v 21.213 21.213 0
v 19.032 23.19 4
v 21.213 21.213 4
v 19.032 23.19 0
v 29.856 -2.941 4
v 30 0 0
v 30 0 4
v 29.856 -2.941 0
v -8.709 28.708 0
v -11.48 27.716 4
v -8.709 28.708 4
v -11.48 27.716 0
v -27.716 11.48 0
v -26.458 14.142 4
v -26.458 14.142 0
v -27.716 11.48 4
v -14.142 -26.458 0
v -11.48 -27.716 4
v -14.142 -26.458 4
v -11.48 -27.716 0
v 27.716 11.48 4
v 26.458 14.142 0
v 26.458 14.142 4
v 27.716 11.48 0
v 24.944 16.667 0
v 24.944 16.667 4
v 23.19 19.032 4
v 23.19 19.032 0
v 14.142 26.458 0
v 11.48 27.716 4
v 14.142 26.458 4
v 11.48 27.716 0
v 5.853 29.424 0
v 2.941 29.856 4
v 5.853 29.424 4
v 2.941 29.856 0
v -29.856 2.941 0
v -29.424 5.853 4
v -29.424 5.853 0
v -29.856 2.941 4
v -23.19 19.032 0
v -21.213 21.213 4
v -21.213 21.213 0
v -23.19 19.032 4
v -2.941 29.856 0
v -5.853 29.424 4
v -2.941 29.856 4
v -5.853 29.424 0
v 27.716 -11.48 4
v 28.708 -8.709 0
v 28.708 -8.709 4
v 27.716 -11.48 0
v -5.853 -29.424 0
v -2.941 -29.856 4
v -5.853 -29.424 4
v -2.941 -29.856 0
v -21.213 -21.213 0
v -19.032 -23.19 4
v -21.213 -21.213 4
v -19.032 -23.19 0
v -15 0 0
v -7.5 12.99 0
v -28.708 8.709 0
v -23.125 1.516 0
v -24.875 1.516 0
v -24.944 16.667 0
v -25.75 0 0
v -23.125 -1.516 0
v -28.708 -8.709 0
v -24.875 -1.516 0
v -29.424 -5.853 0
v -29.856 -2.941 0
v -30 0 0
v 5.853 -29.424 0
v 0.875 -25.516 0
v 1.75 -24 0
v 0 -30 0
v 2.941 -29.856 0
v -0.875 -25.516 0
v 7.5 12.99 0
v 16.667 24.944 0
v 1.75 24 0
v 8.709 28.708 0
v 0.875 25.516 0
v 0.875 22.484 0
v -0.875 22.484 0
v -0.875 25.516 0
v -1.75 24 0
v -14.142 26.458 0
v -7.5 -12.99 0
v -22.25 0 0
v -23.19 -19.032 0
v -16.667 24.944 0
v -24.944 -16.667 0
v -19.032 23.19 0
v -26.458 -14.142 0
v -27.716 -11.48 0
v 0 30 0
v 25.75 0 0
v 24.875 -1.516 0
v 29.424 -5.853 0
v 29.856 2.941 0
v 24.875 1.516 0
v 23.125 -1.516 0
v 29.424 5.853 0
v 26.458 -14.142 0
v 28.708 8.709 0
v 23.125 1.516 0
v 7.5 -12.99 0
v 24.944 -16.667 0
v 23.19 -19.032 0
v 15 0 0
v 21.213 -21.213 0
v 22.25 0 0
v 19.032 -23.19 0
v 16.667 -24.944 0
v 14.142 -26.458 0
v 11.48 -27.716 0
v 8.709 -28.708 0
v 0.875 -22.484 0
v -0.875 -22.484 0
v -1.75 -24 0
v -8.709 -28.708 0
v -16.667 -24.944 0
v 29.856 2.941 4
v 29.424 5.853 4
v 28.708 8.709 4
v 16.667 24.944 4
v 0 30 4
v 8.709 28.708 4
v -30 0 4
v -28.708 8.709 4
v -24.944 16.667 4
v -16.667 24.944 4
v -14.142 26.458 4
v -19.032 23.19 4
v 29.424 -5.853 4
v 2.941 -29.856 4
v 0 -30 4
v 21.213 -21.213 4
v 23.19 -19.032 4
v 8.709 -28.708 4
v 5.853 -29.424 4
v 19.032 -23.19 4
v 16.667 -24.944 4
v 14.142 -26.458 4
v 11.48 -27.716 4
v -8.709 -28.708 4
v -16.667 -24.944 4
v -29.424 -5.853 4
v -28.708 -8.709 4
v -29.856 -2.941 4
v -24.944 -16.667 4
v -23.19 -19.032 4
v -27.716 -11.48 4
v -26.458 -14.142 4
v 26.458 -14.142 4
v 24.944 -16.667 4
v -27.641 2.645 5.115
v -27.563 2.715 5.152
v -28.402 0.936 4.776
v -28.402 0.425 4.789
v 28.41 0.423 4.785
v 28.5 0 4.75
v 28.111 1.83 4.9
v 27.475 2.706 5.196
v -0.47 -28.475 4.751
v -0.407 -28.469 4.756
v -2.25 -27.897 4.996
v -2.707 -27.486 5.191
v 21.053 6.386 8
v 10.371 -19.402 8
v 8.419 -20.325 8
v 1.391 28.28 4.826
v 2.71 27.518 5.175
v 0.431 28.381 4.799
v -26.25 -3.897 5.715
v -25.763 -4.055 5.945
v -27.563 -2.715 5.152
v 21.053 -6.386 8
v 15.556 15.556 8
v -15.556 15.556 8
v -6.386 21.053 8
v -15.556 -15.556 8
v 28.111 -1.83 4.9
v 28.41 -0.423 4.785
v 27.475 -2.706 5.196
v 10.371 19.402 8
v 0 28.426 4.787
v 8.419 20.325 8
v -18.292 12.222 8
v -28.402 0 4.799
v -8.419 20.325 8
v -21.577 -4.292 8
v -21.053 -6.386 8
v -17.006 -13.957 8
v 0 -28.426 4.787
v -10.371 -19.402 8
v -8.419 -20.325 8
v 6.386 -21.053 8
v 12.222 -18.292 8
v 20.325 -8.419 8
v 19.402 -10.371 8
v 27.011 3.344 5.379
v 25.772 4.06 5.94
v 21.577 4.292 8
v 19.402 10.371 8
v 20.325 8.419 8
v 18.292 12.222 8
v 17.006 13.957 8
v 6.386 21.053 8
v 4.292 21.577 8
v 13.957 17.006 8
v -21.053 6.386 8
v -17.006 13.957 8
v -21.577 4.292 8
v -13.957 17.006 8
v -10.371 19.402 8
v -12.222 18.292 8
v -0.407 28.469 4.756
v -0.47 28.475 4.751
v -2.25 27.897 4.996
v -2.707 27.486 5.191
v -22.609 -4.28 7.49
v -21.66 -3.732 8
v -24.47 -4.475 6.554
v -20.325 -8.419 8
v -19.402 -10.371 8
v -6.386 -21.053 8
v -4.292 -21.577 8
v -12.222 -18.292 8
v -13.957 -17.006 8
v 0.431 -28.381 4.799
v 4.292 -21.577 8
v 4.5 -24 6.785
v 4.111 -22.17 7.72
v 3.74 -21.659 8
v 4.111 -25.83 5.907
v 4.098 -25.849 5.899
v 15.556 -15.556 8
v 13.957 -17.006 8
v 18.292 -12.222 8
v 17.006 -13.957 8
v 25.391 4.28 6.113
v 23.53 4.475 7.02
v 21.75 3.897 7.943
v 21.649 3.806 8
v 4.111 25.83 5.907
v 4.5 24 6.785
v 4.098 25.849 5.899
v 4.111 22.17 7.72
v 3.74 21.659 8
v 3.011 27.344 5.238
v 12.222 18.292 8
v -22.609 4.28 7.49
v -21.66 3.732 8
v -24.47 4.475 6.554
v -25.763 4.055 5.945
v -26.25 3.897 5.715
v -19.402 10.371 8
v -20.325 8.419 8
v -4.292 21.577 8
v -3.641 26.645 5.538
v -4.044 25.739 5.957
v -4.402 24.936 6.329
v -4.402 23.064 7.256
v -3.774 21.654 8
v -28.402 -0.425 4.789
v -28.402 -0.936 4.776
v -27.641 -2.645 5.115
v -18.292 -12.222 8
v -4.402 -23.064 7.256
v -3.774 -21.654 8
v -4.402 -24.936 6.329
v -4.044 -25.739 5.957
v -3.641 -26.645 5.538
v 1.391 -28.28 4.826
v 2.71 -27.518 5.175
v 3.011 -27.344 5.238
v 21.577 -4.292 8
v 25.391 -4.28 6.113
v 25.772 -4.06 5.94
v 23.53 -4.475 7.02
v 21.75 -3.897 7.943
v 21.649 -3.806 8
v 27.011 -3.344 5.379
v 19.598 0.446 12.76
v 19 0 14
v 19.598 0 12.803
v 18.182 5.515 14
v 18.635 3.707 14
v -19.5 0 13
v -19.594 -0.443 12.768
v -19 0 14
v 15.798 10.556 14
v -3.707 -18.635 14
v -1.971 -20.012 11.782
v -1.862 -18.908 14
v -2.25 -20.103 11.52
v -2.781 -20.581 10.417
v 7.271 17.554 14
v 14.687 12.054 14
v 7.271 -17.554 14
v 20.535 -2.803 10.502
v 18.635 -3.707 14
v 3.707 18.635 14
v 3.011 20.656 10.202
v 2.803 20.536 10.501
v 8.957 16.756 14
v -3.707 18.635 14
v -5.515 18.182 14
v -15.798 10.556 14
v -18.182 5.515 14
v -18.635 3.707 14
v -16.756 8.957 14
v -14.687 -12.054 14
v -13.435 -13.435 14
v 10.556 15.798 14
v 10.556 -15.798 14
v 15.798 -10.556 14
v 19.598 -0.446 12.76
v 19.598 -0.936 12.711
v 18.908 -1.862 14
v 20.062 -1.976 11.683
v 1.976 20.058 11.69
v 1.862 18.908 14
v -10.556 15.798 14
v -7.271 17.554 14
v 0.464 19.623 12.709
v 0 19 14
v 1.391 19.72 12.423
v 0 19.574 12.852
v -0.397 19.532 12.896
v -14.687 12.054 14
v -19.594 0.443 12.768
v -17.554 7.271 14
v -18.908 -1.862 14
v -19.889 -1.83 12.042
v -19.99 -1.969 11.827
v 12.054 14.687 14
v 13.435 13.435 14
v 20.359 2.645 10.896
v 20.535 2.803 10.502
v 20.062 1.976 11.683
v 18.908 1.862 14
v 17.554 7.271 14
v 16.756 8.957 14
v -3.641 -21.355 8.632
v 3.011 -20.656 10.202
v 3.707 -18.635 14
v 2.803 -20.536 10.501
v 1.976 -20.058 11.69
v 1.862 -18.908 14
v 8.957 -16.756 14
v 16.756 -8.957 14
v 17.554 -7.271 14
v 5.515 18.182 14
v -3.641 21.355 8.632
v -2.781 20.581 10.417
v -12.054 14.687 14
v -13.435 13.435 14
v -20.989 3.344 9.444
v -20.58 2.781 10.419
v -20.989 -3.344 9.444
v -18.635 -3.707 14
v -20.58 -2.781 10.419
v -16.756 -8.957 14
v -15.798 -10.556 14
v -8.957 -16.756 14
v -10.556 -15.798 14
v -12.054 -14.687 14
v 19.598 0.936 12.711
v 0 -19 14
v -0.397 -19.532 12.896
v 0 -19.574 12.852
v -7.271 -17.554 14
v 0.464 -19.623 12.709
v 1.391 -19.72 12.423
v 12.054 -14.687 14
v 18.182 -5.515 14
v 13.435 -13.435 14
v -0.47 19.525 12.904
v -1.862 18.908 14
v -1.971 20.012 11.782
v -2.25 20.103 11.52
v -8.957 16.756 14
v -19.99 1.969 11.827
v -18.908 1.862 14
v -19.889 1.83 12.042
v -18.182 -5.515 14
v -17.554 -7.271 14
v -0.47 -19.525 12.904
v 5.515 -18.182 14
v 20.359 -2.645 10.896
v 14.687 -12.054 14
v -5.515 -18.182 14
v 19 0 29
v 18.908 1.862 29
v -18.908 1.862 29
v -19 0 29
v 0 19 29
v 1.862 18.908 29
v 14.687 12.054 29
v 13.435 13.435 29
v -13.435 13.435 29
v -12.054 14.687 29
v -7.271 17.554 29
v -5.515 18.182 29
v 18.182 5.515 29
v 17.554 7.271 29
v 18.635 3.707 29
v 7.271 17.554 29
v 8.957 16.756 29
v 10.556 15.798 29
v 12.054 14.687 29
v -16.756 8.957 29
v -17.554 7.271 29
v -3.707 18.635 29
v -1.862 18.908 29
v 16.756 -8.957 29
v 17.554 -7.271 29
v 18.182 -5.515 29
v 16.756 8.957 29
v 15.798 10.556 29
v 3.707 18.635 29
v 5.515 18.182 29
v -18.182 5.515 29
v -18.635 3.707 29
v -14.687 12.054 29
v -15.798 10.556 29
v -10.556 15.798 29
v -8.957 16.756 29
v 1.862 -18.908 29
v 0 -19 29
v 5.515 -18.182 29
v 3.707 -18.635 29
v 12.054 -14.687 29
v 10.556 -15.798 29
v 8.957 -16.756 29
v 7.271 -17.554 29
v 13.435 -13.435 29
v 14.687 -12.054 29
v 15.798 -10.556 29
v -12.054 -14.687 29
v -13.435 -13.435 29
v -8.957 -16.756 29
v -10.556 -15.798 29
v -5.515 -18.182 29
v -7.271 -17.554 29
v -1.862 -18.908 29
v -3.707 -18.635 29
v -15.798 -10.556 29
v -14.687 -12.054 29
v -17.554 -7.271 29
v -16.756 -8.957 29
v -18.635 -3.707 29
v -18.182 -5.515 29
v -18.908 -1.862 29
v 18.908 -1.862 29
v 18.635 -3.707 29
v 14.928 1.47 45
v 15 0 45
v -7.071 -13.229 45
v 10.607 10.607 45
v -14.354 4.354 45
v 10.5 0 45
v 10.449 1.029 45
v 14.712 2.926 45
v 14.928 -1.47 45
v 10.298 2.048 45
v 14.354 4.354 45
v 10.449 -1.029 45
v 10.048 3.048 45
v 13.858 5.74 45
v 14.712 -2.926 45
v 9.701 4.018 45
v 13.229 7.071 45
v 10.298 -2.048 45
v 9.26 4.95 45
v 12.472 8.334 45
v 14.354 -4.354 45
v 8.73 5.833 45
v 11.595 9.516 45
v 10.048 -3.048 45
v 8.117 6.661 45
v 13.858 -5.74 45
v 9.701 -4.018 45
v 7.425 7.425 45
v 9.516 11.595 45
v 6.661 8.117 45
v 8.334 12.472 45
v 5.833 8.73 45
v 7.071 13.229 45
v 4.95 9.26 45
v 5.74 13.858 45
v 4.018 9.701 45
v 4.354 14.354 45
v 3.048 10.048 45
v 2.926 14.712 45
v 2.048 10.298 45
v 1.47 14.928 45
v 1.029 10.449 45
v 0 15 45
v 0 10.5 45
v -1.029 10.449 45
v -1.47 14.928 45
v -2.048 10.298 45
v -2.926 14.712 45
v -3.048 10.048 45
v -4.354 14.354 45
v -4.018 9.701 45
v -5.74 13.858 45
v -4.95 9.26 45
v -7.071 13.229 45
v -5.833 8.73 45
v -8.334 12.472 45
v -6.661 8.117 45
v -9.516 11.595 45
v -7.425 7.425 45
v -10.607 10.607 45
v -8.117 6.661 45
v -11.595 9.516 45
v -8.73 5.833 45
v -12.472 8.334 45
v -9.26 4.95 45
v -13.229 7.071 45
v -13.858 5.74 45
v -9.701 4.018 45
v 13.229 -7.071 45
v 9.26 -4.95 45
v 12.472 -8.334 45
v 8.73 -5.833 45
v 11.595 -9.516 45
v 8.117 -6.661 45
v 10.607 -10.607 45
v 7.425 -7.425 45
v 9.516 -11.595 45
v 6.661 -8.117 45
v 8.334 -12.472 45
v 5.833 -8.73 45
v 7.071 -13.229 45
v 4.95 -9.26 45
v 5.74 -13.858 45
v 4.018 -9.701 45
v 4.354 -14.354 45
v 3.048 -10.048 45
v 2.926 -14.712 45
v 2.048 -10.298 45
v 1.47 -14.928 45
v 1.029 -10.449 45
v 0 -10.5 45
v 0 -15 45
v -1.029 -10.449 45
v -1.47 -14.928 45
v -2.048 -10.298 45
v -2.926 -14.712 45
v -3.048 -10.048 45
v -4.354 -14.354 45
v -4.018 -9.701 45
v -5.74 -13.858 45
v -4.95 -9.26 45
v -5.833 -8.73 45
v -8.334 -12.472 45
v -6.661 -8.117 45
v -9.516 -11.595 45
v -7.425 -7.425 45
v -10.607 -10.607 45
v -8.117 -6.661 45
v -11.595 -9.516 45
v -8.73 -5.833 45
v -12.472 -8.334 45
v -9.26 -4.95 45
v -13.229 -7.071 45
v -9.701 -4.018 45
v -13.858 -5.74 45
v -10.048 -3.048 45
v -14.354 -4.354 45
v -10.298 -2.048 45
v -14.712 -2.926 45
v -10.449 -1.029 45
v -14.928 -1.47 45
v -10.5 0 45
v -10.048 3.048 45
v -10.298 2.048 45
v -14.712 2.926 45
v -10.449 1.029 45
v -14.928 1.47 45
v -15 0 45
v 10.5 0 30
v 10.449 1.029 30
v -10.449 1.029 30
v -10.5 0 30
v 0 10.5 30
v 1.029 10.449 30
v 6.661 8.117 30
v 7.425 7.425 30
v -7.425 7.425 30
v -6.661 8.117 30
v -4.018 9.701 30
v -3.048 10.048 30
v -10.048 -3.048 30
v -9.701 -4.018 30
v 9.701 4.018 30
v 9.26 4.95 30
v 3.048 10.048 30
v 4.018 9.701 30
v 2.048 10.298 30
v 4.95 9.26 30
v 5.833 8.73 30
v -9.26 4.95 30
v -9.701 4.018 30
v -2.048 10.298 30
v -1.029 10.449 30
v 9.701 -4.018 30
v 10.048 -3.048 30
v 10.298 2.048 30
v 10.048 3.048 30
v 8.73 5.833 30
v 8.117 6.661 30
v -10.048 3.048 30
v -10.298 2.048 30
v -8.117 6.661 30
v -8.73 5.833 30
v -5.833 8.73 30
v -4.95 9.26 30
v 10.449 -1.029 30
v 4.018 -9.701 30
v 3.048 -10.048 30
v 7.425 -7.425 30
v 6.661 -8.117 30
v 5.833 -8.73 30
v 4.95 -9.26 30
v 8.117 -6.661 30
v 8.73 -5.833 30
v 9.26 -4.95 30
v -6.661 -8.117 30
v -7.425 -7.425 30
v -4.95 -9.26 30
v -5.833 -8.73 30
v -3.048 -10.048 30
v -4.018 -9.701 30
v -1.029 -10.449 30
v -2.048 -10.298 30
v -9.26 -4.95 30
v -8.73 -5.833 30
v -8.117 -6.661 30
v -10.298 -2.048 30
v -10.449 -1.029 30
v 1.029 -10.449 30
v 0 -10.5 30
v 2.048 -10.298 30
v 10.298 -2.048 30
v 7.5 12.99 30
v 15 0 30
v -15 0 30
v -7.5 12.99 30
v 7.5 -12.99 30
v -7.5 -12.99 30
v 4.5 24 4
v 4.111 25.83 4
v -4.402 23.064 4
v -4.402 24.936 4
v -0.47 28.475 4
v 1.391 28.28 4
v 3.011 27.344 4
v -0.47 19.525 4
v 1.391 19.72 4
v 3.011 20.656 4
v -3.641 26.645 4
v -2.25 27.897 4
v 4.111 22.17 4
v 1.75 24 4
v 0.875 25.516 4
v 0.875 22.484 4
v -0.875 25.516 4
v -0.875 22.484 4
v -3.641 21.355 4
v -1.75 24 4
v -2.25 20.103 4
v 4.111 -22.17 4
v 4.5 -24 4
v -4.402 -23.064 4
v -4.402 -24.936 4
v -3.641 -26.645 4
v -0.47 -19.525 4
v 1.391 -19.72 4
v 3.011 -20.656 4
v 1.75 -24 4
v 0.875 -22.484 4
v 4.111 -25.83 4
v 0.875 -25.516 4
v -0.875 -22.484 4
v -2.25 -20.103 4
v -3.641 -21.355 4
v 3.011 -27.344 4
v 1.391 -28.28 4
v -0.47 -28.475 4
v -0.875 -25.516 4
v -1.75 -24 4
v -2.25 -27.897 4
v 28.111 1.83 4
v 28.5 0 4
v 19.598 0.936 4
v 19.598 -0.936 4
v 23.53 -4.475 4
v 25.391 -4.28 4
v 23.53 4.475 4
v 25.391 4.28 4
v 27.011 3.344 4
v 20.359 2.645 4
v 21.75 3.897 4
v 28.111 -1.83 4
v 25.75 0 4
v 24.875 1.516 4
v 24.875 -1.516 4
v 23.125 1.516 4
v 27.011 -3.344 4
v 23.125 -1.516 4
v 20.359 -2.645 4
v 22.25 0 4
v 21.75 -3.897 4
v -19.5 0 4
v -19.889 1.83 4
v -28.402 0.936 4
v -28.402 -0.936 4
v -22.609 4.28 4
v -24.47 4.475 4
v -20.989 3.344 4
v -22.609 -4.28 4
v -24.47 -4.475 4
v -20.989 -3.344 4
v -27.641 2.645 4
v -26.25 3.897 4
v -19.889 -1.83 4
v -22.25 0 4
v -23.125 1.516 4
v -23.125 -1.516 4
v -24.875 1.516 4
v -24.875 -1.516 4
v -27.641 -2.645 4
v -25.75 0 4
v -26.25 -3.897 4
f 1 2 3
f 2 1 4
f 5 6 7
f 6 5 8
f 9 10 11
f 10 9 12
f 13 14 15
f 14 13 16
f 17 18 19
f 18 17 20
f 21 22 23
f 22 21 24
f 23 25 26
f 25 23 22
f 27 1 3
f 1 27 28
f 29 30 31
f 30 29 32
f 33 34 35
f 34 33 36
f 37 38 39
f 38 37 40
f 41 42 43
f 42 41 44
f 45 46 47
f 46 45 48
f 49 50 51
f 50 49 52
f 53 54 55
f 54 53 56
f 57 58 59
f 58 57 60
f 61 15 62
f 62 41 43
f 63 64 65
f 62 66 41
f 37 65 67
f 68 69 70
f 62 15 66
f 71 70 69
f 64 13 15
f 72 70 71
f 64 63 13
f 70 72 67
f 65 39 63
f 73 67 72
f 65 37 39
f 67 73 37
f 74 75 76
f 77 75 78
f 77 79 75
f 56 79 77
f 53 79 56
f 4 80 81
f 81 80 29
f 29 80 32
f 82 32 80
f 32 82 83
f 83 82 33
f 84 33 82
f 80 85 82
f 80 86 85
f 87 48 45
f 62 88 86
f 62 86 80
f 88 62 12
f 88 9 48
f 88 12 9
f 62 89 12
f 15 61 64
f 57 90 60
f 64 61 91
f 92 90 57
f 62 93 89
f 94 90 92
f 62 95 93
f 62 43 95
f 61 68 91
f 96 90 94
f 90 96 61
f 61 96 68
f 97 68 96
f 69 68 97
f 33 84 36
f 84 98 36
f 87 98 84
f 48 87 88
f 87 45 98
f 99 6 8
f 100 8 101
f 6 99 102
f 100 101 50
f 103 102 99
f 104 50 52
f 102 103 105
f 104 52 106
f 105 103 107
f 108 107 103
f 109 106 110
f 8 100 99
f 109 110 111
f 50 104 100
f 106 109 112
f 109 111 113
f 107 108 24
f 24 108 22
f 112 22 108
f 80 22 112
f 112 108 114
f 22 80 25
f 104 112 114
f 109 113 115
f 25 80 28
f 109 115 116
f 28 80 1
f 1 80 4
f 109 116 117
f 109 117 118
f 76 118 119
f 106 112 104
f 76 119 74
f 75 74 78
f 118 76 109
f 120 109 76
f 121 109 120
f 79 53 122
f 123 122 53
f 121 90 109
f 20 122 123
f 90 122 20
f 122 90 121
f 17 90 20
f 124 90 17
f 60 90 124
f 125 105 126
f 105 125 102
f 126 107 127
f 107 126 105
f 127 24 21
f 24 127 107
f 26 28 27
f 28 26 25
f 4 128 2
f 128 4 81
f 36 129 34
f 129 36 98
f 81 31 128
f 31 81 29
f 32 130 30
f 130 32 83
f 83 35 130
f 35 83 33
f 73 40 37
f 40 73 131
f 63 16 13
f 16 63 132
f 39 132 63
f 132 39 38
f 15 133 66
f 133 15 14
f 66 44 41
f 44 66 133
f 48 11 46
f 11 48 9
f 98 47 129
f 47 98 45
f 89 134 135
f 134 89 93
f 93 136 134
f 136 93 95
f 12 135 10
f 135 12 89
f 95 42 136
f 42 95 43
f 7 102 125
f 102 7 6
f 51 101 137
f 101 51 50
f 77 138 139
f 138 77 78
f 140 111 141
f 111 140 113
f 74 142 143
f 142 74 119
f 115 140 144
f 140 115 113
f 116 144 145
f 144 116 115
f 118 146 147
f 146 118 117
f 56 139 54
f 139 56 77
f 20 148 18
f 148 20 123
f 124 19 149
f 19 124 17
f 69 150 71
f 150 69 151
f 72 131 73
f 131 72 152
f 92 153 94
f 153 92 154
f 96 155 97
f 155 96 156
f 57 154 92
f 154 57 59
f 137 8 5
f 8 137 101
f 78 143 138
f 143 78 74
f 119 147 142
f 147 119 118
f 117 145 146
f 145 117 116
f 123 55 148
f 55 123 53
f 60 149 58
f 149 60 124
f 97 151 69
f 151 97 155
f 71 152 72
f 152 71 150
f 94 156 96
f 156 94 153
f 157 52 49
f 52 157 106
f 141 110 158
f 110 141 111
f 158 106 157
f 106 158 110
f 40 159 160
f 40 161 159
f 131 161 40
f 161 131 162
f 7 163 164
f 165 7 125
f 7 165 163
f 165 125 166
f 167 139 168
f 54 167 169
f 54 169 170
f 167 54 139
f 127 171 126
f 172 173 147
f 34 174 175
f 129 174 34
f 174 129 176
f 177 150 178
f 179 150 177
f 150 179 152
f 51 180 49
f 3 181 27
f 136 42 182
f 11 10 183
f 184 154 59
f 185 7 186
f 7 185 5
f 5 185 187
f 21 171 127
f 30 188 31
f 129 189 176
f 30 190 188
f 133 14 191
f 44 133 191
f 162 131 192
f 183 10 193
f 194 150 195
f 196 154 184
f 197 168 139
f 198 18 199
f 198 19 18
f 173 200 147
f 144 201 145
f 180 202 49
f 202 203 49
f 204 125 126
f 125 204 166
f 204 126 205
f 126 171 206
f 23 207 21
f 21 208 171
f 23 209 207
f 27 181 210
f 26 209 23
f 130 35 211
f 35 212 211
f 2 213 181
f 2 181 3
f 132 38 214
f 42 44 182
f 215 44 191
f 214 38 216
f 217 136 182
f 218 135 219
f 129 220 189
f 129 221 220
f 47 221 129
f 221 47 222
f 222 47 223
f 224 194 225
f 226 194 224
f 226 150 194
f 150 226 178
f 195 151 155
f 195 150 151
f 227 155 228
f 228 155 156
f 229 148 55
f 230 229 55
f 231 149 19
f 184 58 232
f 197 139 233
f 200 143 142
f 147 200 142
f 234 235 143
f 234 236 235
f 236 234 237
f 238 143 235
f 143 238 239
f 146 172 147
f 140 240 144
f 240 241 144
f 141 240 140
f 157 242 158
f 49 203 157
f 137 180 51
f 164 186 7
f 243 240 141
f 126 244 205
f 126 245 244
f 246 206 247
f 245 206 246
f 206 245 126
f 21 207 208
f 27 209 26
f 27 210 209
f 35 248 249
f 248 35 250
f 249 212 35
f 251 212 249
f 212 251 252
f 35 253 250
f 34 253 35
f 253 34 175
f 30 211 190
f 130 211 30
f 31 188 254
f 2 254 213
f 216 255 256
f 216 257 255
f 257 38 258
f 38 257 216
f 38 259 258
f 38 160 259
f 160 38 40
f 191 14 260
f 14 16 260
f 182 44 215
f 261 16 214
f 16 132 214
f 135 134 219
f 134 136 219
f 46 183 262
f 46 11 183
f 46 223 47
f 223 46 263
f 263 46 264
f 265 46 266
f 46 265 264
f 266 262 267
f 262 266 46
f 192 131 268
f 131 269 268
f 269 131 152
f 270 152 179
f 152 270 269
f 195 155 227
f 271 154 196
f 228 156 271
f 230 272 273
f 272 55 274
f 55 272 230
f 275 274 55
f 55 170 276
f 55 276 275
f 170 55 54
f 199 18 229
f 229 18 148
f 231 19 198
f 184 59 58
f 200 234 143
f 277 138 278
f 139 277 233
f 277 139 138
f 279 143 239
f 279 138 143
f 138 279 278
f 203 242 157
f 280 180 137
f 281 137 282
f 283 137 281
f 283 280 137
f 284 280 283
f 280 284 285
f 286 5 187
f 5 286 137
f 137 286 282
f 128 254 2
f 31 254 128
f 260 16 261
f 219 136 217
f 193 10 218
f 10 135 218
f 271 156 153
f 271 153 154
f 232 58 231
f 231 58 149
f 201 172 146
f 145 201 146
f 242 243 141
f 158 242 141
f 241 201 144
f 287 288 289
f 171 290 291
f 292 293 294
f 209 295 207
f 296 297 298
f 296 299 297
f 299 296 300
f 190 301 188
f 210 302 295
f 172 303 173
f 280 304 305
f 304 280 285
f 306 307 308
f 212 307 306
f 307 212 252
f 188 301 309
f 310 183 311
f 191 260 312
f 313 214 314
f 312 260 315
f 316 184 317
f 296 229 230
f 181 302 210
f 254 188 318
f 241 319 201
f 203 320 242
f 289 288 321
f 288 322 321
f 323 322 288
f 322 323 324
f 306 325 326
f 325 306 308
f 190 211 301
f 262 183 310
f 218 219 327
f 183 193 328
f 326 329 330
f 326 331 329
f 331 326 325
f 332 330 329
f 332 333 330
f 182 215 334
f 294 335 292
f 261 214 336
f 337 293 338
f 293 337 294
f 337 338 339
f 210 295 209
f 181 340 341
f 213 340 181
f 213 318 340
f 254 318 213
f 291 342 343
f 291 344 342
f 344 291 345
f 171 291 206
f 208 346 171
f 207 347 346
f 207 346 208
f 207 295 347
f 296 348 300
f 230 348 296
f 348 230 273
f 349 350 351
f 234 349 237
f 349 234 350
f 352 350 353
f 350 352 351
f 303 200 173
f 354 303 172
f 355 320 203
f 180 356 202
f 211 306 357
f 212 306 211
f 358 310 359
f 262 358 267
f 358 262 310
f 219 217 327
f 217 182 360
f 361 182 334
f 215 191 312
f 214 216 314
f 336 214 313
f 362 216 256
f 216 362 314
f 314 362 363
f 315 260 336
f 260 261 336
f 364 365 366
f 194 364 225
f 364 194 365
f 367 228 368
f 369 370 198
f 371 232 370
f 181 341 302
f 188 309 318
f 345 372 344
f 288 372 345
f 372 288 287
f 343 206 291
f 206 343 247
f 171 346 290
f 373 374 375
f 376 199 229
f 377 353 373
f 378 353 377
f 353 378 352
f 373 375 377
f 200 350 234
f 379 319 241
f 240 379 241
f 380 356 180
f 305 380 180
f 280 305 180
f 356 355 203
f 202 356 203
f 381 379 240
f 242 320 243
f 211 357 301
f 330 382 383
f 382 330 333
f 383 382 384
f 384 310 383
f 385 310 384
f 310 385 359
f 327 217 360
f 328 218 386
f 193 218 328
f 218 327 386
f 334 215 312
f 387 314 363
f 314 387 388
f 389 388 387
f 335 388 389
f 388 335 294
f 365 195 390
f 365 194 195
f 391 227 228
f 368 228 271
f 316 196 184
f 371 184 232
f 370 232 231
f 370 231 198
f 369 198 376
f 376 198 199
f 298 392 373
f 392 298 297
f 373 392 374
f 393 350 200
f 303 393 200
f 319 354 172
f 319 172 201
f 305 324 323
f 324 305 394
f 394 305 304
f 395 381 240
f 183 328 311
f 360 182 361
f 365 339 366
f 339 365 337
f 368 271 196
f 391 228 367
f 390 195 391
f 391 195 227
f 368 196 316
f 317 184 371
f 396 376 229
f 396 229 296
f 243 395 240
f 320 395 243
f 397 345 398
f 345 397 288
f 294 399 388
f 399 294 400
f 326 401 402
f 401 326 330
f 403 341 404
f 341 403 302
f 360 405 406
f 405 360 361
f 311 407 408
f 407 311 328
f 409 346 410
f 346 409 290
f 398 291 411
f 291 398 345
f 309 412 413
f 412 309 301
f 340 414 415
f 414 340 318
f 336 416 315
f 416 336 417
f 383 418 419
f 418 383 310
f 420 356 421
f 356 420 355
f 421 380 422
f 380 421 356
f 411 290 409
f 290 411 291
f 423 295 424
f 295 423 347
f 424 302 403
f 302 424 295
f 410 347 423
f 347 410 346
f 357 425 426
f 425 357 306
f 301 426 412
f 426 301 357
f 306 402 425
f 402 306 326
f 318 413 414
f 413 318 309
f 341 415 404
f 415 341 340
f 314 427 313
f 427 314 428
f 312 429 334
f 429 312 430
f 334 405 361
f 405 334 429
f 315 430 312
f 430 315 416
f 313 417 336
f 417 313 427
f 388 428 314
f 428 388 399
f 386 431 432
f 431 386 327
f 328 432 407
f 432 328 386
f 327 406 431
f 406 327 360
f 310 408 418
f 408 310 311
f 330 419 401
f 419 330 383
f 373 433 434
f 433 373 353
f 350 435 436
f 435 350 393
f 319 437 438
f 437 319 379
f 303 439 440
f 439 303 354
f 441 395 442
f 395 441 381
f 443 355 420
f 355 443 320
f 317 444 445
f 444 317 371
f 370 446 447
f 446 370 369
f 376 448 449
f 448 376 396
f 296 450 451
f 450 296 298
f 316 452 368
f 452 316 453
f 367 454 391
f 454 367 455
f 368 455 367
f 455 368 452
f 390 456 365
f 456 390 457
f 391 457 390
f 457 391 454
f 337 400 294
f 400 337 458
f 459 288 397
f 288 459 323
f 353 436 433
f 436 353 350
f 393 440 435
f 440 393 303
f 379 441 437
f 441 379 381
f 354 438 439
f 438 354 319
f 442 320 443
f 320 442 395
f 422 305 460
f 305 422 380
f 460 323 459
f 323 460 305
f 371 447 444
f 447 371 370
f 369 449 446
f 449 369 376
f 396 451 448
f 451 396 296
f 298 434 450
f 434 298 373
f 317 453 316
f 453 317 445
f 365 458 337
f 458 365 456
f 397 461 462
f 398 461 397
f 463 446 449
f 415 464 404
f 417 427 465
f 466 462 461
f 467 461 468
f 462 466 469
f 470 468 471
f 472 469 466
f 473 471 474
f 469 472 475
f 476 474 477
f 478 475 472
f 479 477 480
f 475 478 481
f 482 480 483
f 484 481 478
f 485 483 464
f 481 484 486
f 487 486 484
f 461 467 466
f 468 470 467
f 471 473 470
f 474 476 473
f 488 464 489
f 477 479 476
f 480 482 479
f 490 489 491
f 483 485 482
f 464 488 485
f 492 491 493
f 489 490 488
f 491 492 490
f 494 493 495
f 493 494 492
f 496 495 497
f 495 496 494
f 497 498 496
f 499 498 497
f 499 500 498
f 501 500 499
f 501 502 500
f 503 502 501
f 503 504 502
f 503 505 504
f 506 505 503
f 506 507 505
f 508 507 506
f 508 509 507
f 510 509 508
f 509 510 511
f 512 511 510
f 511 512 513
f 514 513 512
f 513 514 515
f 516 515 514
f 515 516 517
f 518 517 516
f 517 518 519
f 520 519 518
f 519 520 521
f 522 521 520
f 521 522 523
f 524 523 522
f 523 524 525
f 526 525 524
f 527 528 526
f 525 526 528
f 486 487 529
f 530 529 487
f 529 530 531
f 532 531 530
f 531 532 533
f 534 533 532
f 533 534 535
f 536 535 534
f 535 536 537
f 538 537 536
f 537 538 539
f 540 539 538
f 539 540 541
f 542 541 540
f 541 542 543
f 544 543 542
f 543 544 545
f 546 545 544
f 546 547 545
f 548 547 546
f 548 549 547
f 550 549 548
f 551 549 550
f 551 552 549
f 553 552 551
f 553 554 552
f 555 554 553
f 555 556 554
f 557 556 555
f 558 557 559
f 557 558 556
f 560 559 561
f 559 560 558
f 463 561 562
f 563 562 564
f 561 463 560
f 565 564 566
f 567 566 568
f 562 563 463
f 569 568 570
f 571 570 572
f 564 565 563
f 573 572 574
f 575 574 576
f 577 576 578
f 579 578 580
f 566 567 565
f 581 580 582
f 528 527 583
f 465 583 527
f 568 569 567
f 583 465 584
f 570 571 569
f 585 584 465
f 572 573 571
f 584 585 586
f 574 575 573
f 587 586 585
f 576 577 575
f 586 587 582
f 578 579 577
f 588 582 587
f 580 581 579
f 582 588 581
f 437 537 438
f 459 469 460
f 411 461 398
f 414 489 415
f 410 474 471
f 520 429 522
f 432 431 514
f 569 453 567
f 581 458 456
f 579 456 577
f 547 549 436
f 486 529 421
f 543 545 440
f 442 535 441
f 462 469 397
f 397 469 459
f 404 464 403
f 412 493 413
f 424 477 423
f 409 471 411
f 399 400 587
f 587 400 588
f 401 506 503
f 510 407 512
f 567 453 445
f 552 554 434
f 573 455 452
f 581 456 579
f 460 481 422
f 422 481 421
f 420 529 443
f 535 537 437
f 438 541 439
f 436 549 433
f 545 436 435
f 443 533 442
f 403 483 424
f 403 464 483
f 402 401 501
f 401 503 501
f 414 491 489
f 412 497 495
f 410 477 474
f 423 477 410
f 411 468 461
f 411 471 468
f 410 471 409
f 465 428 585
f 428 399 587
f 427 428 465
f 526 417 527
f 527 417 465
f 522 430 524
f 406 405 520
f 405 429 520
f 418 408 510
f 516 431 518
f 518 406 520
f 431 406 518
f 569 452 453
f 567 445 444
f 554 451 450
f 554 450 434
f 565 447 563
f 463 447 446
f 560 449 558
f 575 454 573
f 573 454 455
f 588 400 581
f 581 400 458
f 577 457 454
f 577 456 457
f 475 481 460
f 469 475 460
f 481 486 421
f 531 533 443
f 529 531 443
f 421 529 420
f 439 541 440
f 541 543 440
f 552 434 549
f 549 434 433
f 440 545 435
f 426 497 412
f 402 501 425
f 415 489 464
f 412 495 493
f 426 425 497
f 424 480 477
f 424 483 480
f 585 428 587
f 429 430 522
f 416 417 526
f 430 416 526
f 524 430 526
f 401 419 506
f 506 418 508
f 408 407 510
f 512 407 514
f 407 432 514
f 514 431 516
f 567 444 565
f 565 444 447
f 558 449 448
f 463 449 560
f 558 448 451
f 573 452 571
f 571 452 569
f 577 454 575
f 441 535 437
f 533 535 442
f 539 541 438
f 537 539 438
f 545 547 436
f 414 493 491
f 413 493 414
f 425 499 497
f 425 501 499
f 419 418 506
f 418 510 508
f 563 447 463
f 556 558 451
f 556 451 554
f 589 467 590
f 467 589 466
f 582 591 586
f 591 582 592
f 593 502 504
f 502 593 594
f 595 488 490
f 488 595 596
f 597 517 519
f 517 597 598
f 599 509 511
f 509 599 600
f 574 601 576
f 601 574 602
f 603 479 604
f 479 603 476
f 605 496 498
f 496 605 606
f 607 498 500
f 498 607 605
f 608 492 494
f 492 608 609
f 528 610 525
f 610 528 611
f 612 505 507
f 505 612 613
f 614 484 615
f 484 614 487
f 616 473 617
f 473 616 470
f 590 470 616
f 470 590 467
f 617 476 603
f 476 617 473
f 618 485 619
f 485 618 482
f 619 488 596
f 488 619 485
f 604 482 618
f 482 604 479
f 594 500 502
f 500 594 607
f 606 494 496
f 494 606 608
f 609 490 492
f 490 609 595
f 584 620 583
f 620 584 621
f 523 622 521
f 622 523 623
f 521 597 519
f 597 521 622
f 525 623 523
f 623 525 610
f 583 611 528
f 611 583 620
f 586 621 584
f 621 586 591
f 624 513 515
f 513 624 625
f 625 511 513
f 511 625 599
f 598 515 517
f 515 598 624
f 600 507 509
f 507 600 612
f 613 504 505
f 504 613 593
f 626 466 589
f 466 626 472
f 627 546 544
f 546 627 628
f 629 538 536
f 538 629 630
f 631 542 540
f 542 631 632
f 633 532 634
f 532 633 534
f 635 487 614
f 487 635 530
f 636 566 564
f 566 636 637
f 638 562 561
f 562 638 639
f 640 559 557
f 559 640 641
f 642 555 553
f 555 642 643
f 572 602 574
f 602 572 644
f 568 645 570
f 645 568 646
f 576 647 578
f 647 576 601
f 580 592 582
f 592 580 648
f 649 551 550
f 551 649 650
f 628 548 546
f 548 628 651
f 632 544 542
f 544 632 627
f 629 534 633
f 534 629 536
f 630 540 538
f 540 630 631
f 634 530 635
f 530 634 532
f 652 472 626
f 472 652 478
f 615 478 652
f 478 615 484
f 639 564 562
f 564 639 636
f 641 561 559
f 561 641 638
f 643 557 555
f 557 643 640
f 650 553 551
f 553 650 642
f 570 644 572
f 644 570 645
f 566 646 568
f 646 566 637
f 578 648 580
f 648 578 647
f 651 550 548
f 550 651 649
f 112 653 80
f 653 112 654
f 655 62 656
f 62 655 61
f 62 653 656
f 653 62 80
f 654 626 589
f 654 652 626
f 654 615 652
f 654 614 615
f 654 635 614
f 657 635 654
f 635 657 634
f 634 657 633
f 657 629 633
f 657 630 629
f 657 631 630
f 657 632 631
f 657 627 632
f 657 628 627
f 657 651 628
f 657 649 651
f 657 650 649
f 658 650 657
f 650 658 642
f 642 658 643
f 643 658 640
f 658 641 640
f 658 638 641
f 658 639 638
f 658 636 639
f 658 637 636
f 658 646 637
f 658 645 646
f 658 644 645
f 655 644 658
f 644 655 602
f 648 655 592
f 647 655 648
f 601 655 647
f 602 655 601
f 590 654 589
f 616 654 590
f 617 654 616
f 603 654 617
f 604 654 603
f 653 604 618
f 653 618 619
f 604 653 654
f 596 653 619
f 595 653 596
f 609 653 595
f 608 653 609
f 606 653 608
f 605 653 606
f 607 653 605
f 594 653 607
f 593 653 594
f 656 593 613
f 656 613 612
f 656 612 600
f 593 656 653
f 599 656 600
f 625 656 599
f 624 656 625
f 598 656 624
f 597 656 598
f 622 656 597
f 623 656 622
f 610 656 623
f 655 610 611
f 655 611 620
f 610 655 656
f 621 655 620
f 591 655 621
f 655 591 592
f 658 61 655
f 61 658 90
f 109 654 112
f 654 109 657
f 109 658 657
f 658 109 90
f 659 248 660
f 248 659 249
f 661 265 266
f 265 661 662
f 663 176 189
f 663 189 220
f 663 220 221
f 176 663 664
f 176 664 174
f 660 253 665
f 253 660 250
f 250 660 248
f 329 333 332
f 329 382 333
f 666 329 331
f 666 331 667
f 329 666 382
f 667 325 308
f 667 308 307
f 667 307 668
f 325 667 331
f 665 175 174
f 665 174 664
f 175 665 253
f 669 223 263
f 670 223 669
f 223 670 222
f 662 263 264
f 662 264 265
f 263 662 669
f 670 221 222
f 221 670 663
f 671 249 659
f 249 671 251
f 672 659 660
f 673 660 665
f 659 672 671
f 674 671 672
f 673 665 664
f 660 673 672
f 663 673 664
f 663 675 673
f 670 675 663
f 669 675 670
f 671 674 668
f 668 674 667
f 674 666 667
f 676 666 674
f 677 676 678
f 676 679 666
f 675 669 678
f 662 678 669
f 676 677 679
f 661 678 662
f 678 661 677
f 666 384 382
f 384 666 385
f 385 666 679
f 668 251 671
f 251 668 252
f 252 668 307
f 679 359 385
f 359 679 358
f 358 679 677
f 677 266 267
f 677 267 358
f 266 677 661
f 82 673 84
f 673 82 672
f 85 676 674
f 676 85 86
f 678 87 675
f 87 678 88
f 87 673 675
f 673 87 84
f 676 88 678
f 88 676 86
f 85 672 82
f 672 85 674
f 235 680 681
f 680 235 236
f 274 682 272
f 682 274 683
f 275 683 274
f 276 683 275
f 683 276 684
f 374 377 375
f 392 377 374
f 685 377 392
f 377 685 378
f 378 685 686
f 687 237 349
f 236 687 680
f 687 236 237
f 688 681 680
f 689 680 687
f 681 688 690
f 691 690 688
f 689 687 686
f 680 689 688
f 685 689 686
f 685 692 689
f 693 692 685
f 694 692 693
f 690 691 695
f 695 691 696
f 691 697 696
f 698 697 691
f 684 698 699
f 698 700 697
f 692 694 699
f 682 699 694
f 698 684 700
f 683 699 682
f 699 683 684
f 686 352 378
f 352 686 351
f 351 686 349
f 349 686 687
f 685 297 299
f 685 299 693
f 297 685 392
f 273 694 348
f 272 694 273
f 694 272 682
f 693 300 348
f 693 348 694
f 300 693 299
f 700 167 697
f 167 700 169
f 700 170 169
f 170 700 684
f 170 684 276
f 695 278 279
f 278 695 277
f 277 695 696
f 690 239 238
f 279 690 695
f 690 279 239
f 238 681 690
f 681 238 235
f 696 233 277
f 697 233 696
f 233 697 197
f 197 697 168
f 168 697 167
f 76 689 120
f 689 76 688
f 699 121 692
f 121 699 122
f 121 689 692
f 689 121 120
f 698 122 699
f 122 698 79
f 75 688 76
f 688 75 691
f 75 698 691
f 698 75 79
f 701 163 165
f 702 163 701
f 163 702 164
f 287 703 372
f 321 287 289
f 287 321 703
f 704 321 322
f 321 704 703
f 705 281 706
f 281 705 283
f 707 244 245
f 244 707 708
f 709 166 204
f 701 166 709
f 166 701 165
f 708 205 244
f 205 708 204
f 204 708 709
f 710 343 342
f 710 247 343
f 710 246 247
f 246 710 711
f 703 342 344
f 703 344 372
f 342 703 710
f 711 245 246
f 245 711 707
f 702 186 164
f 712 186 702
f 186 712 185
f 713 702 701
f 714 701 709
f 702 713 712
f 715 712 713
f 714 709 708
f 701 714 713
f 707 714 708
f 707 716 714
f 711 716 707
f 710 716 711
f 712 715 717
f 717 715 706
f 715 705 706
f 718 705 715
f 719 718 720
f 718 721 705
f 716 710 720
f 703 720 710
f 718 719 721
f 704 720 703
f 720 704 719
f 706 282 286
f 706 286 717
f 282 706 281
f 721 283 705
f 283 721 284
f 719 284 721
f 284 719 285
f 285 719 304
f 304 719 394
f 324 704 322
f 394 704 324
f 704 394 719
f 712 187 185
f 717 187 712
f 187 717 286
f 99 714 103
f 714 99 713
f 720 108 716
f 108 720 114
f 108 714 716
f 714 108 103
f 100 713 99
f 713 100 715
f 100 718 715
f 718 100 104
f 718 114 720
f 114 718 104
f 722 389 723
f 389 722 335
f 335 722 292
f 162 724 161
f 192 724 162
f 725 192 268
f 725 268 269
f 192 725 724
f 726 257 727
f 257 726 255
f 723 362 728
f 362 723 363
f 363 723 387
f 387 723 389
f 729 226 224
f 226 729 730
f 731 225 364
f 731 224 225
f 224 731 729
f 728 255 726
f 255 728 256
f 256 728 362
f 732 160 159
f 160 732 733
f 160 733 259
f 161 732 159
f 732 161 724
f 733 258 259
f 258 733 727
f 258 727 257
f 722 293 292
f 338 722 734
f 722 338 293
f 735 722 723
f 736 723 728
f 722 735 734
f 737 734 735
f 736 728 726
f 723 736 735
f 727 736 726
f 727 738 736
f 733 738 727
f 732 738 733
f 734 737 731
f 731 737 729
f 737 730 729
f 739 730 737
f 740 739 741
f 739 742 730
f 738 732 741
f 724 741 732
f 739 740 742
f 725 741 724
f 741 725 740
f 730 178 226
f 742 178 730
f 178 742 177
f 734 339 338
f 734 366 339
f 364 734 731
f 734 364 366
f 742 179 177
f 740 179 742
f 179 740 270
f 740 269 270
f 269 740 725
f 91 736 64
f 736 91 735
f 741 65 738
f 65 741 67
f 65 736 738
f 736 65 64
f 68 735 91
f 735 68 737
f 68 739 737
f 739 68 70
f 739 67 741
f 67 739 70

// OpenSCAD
difference() {
	difference() {
		difference() {
			difference() {
				difference() {
					difference() {
						difference() {
							difference() {
								difference() {
									difference() {
										union() {
											union() {
												union() {
													union() {
														cylinder($fn = 64, d = 60, h = 4);
														translate(v = [0, 0, 4]) {
															cylinder($fn = 64, d1 = 60, d2 = 44, h = 4);
														}
													}
													translate(v = [0, 0, 8]) {
														cylinder($fn = 64, d1 = 44, d2 = 38, h = 6);
													}
												}
												translate(v = [0, 0, 14]) {
													cylinder($fn = 64, d1 = 38, d2 = 38, h = 15);
												}
											}
											translate(v = [0, 0, 29]) {
												cylinder($fn = 64, d1 = 38, d2 = 30, h = 16);
											}
										}
										cylinder($fn = 64, d = 21, h = 50);
									}
									cylinder($fn = 6, d = 30, h = 30);
								}
								translate(v = [0, 0, 4]) {
									translate(v = [0, 24, 0]) {
										translate(v = [0, 0, 0]) {
											cylinder(d = 9, h = 10);
										}
									}
								}
							}
							translate(v = [0, 24, 0]) {
								translate(v = [0, 0, 0]) {
									cylinder(d = 3.5000000000, h = 4);
								}
							}
						}
						translate(v = [0, 0, 4]) {
							translate(v = [0, -24, 0]) {
								translate(v = [0, 0, 0]) {
									cylinder(d = 9, h = 10);
								}
							}
						}
					}
					translate(v = [0, -24, 0]) {
						translate(v = [0, 0, 0]) {
							cylinder(d = 3.5000000000, h = 4);
						}
					}
				}
				translate(v = [0, 0, 4]) {
					translate(v = [0, 0, 0]) {
						translate(v = [24, 0, 0]) {
							cylinder(d = 9, h = 10);
						}
					}
				}
			}
			translate(v = [0, 0, 0]) {
				translate(v = [24, 0, 0]) {
					cylinder(d = 3.5000000000, h = 4);
				}
			}
		}
		translate(v = [0, 0, 4]) {
			translate(v = [0, 0, 0]) {
				translate(v = [-24, 0, 0]) {
					cylinder(d = 9, h = 10);
				}
			}
		}
	}
	translate(v = [0, 0, 0]) {
		translate(v = [-24, 0, 0]) {
			cylinder(d = 3.5000000000, h = 4);
		}
	}
}
/***********************************************
*********      SolidPython code:      **********
************************************************
 
import solid as s
import solid.utils as u

seg = 64

t = s.cylinder(d=60, h=4, segments=seg)
t += u.up(4)(s.cylinder(d1=60, d2=44, h=4, segments=seg))
t += u.up(8)(s.cylinder(d1=44, d2=38, h=6, segments=seg))
t += u.up(14)(s.cylinder(d1=38, d2=38, h=15, segments=seg))
t += u.up(29)(s.cylinder(d1=38, d2=30, h=16, segments=seg))

t -= s.cylinder(d=21, h=50, segments=seg)
t -= s.cylinder(d=30, h=30, segments=6)

def screw_hole(t, forward, right):
    t -= u.up(4)(u.forward(forward)(u.right(right)(
        s.cylinder(d=9, h=10)
    )))
    t -= u.forward(forward)(u.right(right)(
        s.cylinder(d=3.5, h=4)
    ))
    return t

t = screw_hole(t, 24, 0) 
t = screw_hole(t, -24, 0) 
t = screw_hole(t, 0, 24) 
t = screw_hole(t, 0, -24) 

final = t
s.scad_render_to_file(final, __file__.replace('.py', '.scad'))
 
 
************************************************/
